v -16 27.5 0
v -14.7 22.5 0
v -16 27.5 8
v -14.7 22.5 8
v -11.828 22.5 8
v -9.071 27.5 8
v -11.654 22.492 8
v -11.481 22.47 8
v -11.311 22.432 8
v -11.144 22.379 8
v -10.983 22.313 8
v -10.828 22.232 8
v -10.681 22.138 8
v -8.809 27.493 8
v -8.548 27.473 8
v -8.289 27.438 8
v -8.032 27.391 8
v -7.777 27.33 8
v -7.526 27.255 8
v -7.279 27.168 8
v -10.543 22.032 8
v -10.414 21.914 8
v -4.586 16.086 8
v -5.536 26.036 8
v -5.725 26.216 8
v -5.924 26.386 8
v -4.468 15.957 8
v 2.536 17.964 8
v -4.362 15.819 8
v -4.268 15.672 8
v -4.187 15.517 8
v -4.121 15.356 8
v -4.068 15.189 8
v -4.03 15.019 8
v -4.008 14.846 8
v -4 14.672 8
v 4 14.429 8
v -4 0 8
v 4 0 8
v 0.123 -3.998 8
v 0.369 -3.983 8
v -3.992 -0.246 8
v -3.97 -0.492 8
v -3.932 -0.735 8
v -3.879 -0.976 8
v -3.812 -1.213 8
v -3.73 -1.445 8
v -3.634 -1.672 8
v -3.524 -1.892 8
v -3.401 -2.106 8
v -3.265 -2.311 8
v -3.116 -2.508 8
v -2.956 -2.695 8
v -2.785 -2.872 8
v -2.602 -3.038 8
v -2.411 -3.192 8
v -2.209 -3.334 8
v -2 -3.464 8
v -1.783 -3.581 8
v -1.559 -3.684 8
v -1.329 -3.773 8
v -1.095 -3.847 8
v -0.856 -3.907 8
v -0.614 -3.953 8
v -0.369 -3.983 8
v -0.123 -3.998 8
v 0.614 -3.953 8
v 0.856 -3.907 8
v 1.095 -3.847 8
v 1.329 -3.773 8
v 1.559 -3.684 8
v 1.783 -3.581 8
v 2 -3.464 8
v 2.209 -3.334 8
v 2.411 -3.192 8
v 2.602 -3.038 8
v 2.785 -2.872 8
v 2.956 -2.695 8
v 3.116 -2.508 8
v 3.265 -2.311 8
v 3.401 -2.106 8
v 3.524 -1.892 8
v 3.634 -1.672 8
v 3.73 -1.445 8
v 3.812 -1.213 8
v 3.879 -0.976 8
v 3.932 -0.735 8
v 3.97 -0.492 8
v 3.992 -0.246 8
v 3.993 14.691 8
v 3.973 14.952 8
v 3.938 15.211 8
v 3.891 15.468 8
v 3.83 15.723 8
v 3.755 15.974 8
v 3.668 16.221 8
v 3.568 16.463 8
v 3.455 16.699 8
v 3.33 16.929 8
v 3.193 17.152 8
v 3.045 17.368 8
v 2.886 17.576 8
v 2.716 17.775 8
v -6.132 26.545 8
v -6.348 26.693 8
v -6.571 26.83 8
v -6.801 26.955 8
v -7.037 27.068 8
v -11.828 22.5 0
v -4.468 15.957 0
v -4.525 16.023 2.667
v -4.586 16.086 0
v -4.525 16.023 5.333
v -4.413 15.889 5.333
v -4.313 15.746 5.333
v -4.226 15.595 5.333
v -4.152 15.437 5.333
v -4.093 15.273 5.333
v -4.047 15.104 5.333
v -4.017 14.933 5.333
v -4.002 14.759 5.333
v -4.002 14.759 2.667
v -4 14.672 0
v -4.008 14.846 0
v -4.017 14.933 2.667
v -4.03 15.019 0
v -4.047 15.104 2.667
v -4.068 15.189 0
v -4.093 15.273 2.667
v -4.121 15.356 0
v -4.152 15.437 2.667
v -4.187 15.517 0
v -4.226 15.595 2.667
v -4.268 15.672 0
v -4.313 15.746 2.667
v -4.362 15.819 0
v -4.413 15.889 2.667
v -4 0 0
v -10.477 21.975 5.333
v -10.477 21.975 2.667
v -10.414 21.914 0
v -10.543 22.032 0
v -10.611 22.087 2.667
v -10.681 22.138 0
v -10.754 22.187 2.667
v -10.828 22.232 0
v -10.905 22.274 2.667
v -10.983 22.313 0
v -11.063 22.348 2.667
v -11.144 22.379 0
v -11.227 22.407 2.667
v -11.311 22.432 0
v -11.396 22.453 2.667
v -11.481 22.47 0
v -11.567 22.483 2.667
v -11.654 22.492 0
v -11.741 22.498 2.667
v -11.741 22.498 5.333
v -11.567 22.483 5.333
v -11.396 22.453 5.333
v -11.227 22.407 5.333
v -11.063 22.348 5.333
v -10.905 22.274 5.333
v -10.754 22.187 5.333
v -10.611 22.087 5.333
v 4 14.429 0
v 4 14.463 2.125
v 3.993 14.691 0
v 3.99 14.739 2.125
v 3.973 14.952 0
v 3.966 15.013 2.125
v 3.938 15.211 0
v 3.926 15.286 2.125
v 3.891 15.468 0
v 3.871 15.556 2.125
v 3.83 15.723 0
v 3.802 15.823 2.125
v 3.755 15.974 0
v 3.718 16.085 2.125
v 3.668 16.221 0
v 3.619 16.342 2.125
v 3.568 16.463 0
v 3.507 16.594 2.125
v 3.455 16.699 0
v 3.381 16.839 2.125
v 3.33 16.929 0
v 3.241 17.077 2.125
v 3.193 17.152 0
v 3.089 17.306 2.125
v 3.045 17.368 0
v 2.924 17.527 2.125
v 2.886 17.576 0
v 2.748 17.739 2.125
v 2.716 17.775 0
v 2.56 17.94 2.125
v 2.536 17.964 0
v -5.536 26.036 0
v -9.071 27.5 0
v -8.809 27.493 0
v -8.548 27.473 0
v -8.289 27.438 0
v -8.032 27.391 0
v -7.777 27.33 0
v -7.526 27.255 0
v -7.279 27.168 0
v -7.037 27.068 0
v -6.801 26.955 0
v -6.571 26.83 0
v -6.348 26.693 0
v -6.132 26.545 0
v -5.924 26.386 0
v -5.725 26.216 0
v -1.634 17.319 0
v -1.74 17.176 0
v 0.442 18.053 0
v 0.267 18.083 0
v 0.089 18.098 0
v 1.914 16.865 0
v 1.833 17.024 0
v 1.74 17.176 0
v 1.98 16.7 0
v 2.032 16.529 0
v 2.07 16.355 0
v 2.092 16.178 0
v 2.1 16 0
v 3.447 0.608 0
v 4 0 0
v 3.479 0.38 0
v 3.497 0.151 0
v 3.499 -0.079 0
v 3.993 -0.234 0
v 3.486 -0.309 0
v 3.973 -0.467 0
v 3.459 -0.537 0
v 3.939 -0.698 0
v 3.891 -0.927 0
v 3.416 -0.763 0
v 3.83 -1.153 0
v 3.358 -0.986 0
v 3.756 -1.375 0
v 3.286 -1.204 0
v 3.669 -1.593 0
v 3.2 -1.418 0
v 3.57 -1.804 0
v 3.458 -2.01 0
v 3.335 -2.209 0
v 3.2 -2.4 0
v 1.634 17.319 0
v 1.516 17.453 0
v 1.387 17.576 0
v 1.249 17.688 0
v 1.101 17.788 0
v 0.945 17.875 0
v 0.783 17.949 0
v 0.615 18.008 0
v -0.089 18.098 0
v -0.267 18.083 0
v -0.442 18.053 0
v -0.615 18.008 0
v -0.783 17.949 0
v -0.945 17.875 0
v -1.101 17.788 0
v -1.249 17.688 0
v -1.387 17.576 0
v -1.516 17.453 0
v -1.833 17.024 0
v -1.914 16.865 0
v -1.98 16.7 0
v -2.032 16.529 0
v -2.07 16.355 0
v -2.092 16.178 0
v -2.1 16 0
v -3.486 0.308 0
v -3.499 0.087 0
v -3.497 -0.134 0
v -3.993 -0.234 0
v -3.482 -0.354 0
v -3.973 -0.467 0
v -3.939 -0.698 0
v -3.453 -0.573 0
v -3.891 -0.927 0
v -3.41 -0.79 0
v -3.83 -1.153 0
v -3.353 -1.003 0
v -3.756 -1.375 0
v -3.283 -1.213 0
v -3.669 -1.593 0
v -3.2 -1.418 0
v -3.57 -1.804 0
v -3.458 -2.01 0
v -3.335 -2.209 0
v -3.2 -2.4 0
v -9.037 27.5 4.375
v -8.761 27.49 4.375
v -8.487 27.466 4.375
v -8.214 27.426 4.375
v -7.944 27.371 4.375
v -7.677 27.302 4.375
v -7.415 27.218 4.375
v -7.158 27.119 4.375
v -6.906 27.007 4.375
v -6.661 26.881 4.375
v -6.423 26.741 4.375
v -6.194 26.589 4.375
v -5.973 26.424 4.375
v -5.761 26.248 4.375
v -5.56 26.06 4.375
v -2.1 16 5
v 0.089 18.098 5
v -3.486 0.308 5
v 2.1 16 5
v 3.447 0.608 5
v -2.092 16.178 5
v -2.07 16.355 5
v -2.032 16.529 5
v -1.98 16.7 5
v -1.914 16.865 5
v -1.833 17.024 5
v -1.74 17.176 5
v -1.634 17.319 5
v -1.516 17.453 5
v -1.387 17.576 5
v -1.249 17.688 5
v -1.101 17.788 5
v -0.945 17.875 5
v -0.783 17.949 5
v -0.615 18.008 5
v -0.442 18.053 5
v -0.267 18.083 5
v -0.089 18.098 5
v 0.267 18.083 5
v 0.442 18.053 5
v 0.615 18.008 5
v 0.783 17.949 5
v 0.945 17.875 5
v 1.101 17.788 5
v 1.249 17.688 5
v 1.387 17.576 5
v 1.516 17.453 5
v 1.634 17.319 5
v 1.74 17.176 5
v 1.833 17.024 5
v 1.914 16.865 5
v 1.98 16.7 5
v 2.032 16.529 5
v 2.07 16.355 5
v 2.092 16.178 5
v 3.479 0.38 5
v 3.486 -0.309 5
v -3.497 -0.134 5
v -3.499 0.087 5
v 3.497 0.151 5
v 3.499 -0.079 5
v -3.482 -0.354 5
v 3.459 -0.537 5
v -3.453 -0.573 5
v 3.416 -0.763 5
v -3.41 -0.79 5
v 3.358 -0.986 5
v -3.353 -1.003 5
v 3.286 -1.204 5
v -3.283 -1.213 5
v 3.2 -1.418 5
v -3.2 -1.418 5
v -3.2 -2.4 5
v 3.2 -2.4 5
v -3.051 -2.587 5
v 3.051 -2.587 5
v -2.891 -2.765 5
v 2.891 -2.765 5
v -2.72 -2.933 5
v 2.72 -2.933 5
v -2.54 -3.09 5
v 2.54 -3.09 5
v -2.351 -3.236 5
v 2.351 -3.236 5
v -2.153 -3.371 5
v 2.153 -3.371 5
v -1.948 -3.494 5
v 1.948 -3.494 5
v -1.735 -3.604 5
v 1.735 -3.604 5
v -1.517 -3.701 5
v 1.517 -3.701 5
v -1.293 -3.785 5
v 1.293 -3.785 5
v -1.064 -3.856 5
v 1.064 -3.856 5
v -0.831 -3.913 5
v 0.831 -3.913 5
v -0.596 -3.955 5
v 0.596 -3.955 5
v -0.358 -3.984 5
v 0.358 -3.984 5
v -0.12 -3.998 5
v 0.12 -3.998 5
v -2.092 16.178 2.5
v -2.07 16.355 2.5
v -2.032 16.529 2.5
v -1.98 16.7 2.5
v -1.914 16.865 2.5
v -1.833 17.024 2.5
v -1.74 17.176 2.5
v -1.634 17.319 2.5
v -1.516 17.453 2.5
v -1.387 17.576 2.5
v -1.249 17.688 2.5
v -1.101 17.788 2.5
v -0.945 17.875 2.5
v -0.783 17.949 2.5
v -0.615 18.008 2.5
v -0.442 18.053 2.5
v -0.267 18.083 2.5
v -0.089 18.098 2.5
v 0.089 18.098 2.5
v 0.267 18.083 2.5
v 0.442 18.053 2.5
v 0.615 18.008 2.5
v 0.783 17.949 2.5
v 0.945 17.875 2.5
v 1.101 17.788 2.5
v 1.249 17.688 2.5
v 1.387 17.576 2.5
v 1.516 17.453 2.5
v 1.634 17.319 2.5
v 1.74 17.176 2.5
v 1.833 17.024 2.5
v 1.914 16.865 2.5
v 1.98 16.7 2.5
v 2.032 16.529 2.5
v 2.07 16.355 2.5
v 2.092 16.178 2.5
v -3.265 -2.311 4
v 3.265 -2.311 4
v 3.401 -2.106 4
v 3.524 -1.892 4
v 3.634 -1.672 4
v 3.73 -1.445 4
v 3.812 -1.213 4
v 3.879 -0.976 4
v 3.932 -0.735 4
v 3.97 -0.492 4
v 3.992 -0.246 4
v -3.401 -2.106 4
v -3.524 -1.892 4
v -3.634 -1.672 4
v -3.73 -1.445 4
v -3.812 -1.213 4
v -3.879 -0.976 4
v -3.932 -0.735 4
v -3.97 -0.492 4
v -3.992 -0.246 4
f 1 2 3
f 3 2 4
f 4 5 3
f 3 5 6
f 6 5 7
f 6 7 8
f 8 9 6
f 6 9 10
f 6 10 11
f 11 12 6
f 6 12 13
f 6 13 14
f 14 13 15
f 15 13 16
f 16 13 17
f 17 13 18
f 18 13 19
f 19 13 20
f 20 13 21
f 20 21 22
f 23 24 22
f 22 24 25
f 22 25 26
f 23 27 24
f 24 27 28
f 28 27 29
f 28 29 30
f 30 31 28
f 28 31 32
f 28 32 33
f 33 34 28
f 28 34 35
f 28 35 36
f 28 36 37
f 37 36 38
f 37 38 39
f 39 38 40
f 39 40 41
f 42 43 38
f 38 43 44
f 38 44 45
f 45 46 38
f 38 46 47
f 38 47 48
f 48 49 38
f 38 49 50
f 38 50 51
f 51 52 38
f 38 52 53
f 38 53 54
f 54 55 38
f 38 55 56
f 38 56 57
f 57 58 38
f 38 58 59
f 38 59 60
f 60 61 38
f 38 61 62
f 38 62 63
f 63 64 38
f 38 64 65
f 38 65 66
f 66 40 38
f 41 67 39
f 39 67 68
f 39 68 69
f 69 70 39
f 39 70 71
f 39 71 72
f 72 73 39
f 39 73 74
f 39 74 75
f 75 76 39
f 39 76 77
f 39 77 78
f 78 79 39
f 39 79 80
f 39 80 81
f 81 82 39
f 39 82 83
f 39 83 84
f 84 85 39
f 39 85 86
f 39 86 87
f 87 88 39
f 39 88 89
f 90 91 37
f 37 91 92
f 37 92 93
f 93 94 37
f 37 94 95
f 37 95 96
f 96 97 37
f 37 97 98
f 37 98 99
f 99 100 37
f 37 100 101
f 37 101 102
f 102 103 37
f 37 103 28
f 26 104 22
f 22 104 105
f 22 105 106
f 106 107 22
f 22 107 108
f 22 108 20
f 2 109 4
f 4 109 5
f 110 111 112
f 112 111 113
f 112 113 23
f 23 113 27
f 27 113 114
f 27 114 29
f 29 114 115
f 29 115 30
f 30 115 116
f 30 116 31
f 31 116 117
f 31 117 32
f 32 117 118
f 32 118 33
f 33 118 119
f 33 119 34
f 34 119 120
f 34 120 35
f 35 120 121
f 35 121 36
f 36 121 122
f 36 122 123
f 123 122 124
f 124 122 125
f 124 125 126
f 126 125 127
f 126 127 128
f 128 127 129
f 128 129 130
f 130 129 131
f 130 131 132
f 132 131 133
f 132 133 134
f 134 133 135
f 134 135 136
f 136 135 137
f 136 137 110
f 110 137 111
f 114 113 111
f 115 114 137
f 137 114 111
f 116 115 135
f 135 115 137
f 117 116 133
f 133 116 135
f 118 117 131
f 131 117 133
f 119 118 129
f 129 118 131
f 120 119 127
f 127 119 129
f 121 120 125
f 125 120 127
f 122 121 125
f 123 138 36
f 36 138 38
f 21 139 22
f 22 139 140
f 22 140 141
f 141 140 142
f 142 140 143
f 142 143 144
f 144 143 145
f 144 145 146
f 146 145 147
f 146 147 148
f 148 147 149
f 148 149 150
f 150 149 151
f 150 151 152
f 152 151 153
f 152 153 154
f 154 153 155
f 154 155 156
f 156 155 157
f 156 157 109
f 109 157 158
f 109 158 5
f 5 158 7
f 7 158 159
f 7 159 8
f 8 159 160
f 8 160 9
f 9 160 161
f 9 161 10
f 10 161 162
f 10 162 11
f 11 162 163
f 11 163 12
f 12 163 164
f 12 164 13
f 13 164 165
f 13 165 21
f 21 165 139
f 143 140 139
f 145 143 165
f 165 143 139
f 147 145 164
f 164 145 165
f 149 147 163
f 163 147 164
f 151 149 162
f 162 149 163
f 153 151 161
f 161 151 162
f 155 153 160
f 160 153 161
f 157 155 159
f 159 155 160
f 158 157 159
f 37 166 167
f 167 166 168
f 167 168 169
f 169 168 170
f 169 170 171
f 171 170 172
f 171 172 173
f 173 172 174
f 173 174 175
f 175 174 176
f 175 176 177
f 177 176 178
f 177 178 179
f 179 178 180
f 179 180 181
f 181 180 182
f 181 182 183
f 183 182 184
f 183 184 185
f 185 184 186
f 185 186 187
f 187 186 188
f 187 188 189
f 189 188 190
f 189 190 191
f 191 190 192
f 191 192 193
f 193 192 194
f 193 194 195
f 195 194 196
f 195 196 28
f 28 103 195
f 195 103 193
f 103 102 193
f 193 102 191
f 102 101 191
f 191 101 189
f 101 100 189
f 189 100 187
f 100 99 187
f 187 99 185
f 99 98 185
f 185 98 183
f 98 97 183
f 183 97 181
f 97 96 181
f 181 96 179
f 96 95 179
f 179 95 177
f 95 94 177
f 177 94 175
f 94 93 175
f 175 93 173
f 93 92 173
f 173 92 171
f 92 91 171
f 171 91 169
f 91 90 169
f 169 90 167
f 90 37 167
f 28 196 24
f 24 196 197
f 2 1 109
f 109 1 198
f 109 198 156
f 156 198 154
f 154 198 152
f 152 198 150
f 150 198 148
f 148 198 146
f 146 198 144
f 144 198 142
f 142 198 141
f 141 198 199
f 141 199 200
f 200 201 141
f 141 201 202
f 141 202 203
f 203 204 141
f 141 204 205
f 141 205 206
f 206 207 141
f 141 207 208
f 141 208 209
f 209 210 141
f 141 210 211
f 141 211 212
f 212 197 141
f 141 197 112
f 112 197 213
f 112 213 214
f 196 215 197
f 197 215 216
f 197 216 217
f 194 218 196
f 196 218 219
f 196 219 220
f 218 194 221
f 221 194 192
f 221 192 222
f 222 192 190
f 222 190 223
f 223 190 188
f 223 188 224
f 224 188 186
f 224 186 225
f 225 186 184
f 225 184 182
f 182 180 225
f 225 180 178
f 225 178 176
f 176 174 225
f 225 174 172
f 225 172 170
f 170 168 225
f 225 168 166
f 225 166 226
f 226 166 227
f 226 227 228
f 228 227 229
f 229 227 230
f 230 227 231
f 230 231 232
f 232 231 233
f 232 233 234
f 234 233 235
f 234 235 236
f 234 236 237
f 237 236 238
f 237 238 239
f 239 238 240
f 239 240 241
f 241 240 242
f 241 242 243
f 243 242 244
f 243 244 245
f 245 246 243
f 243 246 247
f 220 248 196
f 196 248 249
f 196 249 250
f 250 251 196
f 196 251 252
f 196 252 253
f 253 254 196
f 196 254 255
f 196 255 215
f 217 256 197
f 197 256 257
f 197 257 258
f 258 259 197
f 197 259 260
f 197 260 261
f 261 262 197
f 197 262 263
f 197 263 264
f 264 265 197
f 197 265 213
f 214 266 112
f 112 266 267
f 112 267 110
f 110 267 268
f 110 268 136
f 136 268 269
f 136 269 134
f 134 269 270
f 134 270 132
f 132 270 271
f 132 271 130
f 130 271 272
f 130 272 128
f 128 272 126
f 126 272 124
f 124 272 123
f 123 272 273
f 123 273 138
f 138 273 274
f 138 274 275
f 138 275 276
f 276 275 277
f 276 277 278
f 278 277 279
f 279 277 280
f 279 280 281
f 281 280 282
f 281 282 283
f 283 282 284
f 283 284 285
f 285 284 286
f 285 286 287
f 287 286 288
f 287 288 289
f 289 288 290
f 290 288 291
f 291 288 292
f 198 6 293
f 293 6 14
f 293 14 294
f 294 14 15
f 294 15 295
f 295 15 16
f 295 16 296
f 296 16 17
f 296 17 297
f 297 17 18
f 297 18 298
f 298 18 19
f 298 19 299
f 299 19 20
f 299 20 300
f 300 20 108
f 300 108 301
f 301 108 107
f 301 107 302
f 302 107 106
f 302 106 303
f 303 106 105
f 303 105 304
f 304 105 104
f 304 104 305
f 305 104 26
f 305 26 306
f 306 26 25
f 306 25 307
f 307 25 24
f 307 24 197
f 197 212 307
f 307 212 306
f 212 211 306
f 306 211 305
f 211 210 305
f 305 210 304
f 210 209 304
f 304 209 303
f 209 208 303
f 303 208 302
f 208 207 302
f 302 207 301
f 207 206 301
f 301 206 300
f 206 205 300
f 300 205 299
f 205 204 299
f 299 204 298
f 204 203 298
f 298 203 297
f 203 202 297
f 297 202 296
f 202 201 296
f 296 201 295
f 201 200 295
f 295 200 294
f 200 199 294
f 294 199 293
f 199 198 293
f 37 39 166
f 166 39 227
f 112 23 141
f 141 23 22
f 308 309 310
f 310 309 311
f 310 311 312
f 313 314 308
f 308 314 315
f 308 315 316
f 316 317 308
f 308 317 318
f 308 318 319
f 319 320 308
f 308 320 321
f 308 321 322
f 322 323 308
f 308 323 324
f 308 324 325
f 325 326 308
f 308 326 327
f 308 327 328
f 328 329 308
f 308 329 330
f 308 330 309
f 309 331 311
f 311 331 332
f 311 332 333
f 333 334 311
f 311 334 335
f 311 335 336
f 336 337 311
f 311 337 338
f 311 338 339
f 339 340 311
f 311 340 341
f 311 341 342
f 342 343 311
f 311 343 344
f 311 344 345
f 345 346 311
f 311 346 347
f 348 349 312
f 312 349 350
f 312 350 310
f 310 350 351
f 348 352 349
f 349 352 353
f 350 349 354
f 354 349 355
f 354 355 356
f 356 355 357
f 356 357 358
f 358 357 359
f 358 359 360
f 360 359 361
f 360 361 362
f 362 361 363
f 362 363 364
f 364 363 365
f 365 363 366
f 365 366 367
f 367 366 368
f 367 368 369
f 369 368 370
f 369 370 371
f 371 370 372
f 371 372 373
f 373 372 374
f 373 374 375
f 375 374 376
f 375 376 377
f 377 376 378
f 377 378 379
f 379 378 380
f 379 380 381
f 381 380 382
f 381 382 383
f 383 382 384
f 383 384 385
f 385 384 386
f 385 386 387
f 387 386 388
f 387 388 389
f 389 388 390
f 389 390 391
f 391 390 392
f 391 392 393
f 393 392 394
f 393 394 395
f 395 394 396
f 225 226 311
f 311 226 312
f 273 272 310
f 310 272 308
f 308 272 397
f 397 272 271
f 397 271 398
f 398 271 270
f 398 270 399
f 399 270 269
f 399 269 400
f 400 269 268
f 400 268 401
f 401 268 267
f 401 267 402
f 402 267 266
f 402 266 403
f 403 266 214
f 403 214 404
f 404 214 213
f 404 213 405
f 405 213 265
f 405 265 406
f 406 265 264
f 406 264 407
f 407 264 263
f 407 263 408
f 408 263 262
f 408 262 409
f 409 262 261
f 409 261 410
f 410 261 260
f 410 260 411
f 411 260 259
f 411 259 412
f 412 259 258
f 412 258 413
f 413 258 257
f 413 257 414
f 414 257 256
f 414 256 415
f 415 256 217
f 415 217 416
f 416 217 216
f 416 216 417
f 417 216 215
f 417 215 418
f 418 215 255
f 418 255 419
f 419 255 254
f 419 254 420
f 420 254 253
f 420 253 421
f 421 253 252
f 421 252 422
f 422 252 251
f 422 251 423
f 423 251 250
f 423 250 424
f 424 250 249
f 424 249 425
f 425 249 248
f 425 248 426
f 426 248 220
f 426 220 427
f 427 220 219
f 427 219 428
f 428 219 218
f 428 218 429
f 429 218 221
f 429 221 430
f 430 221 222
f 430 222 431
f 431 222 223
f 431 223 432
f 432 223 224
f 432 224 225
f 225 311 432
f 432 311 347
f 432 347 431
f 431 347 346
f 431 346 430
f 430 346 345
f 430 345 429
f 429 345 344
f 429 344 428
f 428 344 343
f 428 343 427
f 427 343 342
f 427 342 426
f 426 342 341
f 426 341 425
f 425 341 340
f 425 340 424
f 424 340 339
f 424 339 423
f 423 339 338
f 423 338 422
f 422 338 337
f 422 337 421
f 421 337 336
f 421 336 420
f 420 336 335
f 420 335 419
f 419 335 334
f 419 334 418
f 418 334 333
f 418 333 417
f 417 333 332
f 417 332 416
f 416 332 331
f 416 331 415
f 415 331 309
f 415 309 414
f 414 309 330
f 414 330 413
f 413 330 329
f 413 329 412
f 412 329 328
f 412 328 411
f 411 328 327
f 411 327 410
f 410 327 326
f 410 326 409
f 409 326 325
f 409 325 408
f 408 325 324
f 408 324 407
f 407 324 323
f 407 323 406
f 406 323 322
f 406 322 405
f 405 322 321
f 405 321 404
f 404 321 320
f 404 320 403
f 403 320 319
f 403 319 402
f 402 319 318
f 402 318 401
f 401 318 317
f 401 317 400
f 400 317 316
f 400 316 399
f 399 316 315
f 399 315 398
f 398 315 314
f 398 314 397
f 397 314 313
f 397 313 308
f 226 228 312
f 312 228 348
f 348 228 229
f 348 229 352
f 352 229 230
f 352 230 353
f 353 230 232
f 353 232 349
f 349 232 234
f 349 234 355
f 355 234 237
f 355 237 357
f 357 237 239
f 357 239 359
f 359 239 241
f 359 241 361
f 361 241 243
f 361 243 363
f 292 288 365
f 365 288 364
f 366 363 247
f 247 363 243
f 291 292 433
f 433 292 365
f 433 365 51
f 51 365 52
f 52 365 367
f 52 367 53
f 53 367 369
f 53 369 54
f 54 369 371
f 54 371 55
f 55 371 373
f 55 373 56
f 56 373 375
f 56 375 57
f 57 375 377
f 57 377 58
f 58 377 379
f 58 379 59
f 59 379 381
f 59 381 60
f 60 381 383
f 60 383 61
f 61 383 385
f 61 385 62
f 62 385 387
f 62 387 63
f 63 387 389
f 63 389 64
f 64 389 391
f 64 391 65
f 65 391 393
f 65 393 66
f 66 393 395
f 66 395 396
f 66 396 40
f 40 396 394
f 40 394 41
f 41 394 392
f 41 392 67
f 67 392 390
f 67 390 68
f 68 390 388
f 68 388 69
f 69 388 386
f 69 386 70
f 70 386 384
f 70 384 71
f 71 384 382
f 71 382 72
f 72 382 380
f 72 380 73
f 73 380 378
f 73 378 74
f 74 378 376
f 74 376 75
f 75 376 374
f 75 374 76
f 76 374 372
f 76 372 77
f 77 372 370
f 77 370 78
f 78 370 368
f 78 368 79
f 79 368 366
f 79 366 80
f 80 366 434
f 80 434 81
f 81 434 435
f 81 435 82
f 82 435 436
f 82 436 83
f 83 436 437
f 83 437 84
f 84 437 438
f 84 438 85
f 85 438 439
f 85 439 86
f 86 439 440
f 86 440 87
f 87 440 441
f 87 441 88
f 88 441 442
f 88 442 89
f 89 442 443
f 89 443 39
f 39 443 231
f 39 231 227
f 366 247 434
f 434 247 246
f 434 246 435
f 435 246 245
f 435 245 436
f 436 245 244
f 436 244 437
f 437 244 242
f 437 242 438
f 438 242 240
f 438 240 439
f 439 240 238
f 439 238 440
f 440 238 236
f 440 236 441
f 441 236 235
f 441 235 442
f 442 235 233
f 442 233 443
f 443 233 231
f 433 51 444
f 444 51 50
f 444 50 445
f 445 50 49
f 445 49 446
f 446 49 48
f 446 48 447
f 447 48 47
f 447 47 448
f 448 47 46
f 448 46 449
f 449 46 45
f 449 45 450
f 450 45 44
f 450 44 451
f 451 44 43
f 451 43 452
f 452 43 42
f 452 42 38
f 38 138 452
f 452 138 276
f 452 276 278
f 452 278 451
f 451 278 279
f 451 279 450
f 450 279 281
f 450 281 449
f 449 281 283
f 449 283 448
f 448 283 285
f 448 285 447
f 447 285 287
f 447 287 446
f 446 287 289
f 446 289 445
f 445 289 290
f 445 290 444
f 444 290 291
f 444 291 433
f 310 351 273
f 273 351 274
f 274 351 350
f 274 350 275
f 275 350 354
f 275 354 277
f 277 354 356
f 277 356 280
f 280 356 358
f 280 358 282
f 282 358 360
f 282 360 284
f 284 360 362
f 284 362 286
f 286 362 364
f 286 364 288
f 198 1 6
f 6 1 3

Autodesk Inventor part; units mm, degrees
ref_plane "YZ Plane" through (0, 0, 0) normal (1, 0, 0) x (0, 1, 0)
ref_plane "XZ Plane" through (0, 0, 0) normal (0, 1, 0) x (-1, 0, 0)
ref_plane "XY Plane" through (0, 0, 0) normal (0, 0, 1) x (1, 0, 0)
sketch "Sketch2" plane through (0, 0, 0) normal (0, 0, 1) x (1, 0, 0)
  circle A0 centre (0, 0) radius 4
  line L0 (-4, 0) -> (4, 0)
  line L1 (4, 0) -> (4, 25)
  line L2 (4, 25) -> (-4, 25)
  line L3 (-4, 25) -> (-4, 0)
  point P0 (4, 0)
  dimension "d11" = 8
  dimension "d12" = 8
  dimension "d13" = 25
extrude "Extrusion2" add sketch "Sketch2" along normal blind 5
sketch "Sketch3" plane through (0, 0, 5) normal (0, 0, 1) x (1, 0, 0)
  line L0 (4, 0) -> (4, 25) projected
  line L1 (-16, 27.5) -> (4, 27.5)
  line L2 (4, 27.5) -> (4, 22.5)
  line L3 (4, 22.5) -> (-16, 22.5)
  line L4 (-16, 22.5) -> (-16, 27.5)
  line L5 (4, 25) -> (-4, 25) projected
  point P0 (0, 0)
  point P1 (3, 25)
  dimension "d16" = 2.5
  dimension "d17" = 2.5
  dimension "d18" = 20
extrude "Extrusion3" add sketch "Sketch3" against normal blind 5
sketch "Sketch4" plane through (0, 0, 5) normal (0, 0, 1) x (1, 0, 0)
  line L0 (4, 0) -> (4, 27.5) projected
  line L1 (-16, 22.5) -> (-16, 27.5) projected
  line L2 (4, 27.5) -> (-16, 27.5)
  line L3 (-16, 27.5) -> (-16, 22.5)
  line L4 (-16, 22.5) -> (4, 22.5)
  line L5 (4, 22.5) -> (4, 27.5)
  point P0 (0, 0)
extrude "Extrusion4" add sketch "Sketch4" along normal blind 3
sketch "Sketch6" plane through (0, 0, 0) normal (0, 0, -1) x (-1, 0, 0)
  circle A0 centre (0, 0) radius 3.5
  dimension "d30" = 7
extrude "Extrusion6" cut sketch "Sketch6" against normal blind 5
sketch "Sketch7" plane through (0, 0, 0) normal (0, 0, -1) x (-1, 0, 0)
  line L0 (-3.2, -6) -> (3.2, -6)
  line L1 (3.2, -6) -> (3.2, -1)
  line L2 (3.2, -1) -> (-3.2, -1)
  line L3 (-3.2, -1) -> (-3.2, -6)
  line L4 (-4, 0) -> (-4, 27.5) projected
  line L5 (4, 22.5) -> (4, 0) projected
  point P0 (0, 0)
  point P1 (-4, 24.5)
  dimension "d33" = 1
  dimension "d34" = 6
  dimension "d35" = 0.8
  dimension "d36" = 0.8
extrude "Extrusion7" cut sketch "Sketch7" against normal blind 5
sketch "Sketch8" plane through (0, 0, 0) normal (0, 0, -1) x (-1, 0, 0)
  circle A0 centre (0, 16) radius 2.1
  arc A1 (3.2, -1.4177) -> (-3.2, -1.4177) centre (0, 0) ccw projected
  line L0 (-3.5, 0) -> (-2.1, 16)
  line L1 (2.1, 16) -> (3.4864, 0.308)
  point P0 (-3.4468, 0.6078)
  dimension "d39" = 16
  dimension "d40" = 4.2
extrude "Extrusion8" cut sketch "Sketch8" against normal blind 5 contours A0 | L1 A1 L0 A0
sketch "Sketch10" plane through (0, 0, 5) normal (0, 0, 1) x (1, 0, 0)
  line L0 (-4, 22.5) -> (-4, 0) projected
  line L1 (4, 0) -> (4, 22.5) projected
  line L2 (-4, 22.5) -> (4, 22.5)
  line L3 (4, 22.5) -> (4, 0)
  line L4 (4, 0) -> (-4, 0)
  line L5 (-4, 0) -> (-4, 22.5)
  point P0 (0, 0)
  point P1 (-4, 15.5)
  point P2 (-4, 15.5)
  point P3 (-4, 14.5)
extrude "Extrusion10" add sketch "Sketch10" along normal blind 3
chamfer "Chamfer5" distance 7 angle 45 1 edges at (-4, 22.5, 4)
chamfer "Chamfer6" distance 11 angle 45 1 edges at (4, 27.5, 4)
fillet "Fillet6" radius 5 2 edges at (-7, 27.5, 4) (4, 16.5, 4)
fillet "Fillet7" radius 2 2 edges at (-11, 22.5, 4) (-4, 15.5, 4)
sketch "Sketch14" plane through (0, 0, 5) normal (0, 0, 1) x (1, 0, 0)
  circle A0 centre (0, 0) radius 4
extrude "Extrusion14" add sketch "Sketch14" along normal blind 3
sketch "Sketch15" plane through (0, 0, 8) normal (0, 0, 1) x (1, 0, 0)
  line L0 (-16, 22.5) -> (-16, 27.5) projected
  line L1 (-16, 27.5) -> (-16, 22.5)
  line L2 (-16, 22.5) -> (-14.7, 22.5)
  line L3 (-11.8284, 22.5) -> (-16, 22.5) projected
  line L4 (-16, 27.5) -> (-14.7, 22.5)
  point P0 (0, 0)
  dimension "d82" = 1.3
extrude "Extrusion15" cut sketch "Sketch15" against normal blind 20
properties part number "switch-pusher"
